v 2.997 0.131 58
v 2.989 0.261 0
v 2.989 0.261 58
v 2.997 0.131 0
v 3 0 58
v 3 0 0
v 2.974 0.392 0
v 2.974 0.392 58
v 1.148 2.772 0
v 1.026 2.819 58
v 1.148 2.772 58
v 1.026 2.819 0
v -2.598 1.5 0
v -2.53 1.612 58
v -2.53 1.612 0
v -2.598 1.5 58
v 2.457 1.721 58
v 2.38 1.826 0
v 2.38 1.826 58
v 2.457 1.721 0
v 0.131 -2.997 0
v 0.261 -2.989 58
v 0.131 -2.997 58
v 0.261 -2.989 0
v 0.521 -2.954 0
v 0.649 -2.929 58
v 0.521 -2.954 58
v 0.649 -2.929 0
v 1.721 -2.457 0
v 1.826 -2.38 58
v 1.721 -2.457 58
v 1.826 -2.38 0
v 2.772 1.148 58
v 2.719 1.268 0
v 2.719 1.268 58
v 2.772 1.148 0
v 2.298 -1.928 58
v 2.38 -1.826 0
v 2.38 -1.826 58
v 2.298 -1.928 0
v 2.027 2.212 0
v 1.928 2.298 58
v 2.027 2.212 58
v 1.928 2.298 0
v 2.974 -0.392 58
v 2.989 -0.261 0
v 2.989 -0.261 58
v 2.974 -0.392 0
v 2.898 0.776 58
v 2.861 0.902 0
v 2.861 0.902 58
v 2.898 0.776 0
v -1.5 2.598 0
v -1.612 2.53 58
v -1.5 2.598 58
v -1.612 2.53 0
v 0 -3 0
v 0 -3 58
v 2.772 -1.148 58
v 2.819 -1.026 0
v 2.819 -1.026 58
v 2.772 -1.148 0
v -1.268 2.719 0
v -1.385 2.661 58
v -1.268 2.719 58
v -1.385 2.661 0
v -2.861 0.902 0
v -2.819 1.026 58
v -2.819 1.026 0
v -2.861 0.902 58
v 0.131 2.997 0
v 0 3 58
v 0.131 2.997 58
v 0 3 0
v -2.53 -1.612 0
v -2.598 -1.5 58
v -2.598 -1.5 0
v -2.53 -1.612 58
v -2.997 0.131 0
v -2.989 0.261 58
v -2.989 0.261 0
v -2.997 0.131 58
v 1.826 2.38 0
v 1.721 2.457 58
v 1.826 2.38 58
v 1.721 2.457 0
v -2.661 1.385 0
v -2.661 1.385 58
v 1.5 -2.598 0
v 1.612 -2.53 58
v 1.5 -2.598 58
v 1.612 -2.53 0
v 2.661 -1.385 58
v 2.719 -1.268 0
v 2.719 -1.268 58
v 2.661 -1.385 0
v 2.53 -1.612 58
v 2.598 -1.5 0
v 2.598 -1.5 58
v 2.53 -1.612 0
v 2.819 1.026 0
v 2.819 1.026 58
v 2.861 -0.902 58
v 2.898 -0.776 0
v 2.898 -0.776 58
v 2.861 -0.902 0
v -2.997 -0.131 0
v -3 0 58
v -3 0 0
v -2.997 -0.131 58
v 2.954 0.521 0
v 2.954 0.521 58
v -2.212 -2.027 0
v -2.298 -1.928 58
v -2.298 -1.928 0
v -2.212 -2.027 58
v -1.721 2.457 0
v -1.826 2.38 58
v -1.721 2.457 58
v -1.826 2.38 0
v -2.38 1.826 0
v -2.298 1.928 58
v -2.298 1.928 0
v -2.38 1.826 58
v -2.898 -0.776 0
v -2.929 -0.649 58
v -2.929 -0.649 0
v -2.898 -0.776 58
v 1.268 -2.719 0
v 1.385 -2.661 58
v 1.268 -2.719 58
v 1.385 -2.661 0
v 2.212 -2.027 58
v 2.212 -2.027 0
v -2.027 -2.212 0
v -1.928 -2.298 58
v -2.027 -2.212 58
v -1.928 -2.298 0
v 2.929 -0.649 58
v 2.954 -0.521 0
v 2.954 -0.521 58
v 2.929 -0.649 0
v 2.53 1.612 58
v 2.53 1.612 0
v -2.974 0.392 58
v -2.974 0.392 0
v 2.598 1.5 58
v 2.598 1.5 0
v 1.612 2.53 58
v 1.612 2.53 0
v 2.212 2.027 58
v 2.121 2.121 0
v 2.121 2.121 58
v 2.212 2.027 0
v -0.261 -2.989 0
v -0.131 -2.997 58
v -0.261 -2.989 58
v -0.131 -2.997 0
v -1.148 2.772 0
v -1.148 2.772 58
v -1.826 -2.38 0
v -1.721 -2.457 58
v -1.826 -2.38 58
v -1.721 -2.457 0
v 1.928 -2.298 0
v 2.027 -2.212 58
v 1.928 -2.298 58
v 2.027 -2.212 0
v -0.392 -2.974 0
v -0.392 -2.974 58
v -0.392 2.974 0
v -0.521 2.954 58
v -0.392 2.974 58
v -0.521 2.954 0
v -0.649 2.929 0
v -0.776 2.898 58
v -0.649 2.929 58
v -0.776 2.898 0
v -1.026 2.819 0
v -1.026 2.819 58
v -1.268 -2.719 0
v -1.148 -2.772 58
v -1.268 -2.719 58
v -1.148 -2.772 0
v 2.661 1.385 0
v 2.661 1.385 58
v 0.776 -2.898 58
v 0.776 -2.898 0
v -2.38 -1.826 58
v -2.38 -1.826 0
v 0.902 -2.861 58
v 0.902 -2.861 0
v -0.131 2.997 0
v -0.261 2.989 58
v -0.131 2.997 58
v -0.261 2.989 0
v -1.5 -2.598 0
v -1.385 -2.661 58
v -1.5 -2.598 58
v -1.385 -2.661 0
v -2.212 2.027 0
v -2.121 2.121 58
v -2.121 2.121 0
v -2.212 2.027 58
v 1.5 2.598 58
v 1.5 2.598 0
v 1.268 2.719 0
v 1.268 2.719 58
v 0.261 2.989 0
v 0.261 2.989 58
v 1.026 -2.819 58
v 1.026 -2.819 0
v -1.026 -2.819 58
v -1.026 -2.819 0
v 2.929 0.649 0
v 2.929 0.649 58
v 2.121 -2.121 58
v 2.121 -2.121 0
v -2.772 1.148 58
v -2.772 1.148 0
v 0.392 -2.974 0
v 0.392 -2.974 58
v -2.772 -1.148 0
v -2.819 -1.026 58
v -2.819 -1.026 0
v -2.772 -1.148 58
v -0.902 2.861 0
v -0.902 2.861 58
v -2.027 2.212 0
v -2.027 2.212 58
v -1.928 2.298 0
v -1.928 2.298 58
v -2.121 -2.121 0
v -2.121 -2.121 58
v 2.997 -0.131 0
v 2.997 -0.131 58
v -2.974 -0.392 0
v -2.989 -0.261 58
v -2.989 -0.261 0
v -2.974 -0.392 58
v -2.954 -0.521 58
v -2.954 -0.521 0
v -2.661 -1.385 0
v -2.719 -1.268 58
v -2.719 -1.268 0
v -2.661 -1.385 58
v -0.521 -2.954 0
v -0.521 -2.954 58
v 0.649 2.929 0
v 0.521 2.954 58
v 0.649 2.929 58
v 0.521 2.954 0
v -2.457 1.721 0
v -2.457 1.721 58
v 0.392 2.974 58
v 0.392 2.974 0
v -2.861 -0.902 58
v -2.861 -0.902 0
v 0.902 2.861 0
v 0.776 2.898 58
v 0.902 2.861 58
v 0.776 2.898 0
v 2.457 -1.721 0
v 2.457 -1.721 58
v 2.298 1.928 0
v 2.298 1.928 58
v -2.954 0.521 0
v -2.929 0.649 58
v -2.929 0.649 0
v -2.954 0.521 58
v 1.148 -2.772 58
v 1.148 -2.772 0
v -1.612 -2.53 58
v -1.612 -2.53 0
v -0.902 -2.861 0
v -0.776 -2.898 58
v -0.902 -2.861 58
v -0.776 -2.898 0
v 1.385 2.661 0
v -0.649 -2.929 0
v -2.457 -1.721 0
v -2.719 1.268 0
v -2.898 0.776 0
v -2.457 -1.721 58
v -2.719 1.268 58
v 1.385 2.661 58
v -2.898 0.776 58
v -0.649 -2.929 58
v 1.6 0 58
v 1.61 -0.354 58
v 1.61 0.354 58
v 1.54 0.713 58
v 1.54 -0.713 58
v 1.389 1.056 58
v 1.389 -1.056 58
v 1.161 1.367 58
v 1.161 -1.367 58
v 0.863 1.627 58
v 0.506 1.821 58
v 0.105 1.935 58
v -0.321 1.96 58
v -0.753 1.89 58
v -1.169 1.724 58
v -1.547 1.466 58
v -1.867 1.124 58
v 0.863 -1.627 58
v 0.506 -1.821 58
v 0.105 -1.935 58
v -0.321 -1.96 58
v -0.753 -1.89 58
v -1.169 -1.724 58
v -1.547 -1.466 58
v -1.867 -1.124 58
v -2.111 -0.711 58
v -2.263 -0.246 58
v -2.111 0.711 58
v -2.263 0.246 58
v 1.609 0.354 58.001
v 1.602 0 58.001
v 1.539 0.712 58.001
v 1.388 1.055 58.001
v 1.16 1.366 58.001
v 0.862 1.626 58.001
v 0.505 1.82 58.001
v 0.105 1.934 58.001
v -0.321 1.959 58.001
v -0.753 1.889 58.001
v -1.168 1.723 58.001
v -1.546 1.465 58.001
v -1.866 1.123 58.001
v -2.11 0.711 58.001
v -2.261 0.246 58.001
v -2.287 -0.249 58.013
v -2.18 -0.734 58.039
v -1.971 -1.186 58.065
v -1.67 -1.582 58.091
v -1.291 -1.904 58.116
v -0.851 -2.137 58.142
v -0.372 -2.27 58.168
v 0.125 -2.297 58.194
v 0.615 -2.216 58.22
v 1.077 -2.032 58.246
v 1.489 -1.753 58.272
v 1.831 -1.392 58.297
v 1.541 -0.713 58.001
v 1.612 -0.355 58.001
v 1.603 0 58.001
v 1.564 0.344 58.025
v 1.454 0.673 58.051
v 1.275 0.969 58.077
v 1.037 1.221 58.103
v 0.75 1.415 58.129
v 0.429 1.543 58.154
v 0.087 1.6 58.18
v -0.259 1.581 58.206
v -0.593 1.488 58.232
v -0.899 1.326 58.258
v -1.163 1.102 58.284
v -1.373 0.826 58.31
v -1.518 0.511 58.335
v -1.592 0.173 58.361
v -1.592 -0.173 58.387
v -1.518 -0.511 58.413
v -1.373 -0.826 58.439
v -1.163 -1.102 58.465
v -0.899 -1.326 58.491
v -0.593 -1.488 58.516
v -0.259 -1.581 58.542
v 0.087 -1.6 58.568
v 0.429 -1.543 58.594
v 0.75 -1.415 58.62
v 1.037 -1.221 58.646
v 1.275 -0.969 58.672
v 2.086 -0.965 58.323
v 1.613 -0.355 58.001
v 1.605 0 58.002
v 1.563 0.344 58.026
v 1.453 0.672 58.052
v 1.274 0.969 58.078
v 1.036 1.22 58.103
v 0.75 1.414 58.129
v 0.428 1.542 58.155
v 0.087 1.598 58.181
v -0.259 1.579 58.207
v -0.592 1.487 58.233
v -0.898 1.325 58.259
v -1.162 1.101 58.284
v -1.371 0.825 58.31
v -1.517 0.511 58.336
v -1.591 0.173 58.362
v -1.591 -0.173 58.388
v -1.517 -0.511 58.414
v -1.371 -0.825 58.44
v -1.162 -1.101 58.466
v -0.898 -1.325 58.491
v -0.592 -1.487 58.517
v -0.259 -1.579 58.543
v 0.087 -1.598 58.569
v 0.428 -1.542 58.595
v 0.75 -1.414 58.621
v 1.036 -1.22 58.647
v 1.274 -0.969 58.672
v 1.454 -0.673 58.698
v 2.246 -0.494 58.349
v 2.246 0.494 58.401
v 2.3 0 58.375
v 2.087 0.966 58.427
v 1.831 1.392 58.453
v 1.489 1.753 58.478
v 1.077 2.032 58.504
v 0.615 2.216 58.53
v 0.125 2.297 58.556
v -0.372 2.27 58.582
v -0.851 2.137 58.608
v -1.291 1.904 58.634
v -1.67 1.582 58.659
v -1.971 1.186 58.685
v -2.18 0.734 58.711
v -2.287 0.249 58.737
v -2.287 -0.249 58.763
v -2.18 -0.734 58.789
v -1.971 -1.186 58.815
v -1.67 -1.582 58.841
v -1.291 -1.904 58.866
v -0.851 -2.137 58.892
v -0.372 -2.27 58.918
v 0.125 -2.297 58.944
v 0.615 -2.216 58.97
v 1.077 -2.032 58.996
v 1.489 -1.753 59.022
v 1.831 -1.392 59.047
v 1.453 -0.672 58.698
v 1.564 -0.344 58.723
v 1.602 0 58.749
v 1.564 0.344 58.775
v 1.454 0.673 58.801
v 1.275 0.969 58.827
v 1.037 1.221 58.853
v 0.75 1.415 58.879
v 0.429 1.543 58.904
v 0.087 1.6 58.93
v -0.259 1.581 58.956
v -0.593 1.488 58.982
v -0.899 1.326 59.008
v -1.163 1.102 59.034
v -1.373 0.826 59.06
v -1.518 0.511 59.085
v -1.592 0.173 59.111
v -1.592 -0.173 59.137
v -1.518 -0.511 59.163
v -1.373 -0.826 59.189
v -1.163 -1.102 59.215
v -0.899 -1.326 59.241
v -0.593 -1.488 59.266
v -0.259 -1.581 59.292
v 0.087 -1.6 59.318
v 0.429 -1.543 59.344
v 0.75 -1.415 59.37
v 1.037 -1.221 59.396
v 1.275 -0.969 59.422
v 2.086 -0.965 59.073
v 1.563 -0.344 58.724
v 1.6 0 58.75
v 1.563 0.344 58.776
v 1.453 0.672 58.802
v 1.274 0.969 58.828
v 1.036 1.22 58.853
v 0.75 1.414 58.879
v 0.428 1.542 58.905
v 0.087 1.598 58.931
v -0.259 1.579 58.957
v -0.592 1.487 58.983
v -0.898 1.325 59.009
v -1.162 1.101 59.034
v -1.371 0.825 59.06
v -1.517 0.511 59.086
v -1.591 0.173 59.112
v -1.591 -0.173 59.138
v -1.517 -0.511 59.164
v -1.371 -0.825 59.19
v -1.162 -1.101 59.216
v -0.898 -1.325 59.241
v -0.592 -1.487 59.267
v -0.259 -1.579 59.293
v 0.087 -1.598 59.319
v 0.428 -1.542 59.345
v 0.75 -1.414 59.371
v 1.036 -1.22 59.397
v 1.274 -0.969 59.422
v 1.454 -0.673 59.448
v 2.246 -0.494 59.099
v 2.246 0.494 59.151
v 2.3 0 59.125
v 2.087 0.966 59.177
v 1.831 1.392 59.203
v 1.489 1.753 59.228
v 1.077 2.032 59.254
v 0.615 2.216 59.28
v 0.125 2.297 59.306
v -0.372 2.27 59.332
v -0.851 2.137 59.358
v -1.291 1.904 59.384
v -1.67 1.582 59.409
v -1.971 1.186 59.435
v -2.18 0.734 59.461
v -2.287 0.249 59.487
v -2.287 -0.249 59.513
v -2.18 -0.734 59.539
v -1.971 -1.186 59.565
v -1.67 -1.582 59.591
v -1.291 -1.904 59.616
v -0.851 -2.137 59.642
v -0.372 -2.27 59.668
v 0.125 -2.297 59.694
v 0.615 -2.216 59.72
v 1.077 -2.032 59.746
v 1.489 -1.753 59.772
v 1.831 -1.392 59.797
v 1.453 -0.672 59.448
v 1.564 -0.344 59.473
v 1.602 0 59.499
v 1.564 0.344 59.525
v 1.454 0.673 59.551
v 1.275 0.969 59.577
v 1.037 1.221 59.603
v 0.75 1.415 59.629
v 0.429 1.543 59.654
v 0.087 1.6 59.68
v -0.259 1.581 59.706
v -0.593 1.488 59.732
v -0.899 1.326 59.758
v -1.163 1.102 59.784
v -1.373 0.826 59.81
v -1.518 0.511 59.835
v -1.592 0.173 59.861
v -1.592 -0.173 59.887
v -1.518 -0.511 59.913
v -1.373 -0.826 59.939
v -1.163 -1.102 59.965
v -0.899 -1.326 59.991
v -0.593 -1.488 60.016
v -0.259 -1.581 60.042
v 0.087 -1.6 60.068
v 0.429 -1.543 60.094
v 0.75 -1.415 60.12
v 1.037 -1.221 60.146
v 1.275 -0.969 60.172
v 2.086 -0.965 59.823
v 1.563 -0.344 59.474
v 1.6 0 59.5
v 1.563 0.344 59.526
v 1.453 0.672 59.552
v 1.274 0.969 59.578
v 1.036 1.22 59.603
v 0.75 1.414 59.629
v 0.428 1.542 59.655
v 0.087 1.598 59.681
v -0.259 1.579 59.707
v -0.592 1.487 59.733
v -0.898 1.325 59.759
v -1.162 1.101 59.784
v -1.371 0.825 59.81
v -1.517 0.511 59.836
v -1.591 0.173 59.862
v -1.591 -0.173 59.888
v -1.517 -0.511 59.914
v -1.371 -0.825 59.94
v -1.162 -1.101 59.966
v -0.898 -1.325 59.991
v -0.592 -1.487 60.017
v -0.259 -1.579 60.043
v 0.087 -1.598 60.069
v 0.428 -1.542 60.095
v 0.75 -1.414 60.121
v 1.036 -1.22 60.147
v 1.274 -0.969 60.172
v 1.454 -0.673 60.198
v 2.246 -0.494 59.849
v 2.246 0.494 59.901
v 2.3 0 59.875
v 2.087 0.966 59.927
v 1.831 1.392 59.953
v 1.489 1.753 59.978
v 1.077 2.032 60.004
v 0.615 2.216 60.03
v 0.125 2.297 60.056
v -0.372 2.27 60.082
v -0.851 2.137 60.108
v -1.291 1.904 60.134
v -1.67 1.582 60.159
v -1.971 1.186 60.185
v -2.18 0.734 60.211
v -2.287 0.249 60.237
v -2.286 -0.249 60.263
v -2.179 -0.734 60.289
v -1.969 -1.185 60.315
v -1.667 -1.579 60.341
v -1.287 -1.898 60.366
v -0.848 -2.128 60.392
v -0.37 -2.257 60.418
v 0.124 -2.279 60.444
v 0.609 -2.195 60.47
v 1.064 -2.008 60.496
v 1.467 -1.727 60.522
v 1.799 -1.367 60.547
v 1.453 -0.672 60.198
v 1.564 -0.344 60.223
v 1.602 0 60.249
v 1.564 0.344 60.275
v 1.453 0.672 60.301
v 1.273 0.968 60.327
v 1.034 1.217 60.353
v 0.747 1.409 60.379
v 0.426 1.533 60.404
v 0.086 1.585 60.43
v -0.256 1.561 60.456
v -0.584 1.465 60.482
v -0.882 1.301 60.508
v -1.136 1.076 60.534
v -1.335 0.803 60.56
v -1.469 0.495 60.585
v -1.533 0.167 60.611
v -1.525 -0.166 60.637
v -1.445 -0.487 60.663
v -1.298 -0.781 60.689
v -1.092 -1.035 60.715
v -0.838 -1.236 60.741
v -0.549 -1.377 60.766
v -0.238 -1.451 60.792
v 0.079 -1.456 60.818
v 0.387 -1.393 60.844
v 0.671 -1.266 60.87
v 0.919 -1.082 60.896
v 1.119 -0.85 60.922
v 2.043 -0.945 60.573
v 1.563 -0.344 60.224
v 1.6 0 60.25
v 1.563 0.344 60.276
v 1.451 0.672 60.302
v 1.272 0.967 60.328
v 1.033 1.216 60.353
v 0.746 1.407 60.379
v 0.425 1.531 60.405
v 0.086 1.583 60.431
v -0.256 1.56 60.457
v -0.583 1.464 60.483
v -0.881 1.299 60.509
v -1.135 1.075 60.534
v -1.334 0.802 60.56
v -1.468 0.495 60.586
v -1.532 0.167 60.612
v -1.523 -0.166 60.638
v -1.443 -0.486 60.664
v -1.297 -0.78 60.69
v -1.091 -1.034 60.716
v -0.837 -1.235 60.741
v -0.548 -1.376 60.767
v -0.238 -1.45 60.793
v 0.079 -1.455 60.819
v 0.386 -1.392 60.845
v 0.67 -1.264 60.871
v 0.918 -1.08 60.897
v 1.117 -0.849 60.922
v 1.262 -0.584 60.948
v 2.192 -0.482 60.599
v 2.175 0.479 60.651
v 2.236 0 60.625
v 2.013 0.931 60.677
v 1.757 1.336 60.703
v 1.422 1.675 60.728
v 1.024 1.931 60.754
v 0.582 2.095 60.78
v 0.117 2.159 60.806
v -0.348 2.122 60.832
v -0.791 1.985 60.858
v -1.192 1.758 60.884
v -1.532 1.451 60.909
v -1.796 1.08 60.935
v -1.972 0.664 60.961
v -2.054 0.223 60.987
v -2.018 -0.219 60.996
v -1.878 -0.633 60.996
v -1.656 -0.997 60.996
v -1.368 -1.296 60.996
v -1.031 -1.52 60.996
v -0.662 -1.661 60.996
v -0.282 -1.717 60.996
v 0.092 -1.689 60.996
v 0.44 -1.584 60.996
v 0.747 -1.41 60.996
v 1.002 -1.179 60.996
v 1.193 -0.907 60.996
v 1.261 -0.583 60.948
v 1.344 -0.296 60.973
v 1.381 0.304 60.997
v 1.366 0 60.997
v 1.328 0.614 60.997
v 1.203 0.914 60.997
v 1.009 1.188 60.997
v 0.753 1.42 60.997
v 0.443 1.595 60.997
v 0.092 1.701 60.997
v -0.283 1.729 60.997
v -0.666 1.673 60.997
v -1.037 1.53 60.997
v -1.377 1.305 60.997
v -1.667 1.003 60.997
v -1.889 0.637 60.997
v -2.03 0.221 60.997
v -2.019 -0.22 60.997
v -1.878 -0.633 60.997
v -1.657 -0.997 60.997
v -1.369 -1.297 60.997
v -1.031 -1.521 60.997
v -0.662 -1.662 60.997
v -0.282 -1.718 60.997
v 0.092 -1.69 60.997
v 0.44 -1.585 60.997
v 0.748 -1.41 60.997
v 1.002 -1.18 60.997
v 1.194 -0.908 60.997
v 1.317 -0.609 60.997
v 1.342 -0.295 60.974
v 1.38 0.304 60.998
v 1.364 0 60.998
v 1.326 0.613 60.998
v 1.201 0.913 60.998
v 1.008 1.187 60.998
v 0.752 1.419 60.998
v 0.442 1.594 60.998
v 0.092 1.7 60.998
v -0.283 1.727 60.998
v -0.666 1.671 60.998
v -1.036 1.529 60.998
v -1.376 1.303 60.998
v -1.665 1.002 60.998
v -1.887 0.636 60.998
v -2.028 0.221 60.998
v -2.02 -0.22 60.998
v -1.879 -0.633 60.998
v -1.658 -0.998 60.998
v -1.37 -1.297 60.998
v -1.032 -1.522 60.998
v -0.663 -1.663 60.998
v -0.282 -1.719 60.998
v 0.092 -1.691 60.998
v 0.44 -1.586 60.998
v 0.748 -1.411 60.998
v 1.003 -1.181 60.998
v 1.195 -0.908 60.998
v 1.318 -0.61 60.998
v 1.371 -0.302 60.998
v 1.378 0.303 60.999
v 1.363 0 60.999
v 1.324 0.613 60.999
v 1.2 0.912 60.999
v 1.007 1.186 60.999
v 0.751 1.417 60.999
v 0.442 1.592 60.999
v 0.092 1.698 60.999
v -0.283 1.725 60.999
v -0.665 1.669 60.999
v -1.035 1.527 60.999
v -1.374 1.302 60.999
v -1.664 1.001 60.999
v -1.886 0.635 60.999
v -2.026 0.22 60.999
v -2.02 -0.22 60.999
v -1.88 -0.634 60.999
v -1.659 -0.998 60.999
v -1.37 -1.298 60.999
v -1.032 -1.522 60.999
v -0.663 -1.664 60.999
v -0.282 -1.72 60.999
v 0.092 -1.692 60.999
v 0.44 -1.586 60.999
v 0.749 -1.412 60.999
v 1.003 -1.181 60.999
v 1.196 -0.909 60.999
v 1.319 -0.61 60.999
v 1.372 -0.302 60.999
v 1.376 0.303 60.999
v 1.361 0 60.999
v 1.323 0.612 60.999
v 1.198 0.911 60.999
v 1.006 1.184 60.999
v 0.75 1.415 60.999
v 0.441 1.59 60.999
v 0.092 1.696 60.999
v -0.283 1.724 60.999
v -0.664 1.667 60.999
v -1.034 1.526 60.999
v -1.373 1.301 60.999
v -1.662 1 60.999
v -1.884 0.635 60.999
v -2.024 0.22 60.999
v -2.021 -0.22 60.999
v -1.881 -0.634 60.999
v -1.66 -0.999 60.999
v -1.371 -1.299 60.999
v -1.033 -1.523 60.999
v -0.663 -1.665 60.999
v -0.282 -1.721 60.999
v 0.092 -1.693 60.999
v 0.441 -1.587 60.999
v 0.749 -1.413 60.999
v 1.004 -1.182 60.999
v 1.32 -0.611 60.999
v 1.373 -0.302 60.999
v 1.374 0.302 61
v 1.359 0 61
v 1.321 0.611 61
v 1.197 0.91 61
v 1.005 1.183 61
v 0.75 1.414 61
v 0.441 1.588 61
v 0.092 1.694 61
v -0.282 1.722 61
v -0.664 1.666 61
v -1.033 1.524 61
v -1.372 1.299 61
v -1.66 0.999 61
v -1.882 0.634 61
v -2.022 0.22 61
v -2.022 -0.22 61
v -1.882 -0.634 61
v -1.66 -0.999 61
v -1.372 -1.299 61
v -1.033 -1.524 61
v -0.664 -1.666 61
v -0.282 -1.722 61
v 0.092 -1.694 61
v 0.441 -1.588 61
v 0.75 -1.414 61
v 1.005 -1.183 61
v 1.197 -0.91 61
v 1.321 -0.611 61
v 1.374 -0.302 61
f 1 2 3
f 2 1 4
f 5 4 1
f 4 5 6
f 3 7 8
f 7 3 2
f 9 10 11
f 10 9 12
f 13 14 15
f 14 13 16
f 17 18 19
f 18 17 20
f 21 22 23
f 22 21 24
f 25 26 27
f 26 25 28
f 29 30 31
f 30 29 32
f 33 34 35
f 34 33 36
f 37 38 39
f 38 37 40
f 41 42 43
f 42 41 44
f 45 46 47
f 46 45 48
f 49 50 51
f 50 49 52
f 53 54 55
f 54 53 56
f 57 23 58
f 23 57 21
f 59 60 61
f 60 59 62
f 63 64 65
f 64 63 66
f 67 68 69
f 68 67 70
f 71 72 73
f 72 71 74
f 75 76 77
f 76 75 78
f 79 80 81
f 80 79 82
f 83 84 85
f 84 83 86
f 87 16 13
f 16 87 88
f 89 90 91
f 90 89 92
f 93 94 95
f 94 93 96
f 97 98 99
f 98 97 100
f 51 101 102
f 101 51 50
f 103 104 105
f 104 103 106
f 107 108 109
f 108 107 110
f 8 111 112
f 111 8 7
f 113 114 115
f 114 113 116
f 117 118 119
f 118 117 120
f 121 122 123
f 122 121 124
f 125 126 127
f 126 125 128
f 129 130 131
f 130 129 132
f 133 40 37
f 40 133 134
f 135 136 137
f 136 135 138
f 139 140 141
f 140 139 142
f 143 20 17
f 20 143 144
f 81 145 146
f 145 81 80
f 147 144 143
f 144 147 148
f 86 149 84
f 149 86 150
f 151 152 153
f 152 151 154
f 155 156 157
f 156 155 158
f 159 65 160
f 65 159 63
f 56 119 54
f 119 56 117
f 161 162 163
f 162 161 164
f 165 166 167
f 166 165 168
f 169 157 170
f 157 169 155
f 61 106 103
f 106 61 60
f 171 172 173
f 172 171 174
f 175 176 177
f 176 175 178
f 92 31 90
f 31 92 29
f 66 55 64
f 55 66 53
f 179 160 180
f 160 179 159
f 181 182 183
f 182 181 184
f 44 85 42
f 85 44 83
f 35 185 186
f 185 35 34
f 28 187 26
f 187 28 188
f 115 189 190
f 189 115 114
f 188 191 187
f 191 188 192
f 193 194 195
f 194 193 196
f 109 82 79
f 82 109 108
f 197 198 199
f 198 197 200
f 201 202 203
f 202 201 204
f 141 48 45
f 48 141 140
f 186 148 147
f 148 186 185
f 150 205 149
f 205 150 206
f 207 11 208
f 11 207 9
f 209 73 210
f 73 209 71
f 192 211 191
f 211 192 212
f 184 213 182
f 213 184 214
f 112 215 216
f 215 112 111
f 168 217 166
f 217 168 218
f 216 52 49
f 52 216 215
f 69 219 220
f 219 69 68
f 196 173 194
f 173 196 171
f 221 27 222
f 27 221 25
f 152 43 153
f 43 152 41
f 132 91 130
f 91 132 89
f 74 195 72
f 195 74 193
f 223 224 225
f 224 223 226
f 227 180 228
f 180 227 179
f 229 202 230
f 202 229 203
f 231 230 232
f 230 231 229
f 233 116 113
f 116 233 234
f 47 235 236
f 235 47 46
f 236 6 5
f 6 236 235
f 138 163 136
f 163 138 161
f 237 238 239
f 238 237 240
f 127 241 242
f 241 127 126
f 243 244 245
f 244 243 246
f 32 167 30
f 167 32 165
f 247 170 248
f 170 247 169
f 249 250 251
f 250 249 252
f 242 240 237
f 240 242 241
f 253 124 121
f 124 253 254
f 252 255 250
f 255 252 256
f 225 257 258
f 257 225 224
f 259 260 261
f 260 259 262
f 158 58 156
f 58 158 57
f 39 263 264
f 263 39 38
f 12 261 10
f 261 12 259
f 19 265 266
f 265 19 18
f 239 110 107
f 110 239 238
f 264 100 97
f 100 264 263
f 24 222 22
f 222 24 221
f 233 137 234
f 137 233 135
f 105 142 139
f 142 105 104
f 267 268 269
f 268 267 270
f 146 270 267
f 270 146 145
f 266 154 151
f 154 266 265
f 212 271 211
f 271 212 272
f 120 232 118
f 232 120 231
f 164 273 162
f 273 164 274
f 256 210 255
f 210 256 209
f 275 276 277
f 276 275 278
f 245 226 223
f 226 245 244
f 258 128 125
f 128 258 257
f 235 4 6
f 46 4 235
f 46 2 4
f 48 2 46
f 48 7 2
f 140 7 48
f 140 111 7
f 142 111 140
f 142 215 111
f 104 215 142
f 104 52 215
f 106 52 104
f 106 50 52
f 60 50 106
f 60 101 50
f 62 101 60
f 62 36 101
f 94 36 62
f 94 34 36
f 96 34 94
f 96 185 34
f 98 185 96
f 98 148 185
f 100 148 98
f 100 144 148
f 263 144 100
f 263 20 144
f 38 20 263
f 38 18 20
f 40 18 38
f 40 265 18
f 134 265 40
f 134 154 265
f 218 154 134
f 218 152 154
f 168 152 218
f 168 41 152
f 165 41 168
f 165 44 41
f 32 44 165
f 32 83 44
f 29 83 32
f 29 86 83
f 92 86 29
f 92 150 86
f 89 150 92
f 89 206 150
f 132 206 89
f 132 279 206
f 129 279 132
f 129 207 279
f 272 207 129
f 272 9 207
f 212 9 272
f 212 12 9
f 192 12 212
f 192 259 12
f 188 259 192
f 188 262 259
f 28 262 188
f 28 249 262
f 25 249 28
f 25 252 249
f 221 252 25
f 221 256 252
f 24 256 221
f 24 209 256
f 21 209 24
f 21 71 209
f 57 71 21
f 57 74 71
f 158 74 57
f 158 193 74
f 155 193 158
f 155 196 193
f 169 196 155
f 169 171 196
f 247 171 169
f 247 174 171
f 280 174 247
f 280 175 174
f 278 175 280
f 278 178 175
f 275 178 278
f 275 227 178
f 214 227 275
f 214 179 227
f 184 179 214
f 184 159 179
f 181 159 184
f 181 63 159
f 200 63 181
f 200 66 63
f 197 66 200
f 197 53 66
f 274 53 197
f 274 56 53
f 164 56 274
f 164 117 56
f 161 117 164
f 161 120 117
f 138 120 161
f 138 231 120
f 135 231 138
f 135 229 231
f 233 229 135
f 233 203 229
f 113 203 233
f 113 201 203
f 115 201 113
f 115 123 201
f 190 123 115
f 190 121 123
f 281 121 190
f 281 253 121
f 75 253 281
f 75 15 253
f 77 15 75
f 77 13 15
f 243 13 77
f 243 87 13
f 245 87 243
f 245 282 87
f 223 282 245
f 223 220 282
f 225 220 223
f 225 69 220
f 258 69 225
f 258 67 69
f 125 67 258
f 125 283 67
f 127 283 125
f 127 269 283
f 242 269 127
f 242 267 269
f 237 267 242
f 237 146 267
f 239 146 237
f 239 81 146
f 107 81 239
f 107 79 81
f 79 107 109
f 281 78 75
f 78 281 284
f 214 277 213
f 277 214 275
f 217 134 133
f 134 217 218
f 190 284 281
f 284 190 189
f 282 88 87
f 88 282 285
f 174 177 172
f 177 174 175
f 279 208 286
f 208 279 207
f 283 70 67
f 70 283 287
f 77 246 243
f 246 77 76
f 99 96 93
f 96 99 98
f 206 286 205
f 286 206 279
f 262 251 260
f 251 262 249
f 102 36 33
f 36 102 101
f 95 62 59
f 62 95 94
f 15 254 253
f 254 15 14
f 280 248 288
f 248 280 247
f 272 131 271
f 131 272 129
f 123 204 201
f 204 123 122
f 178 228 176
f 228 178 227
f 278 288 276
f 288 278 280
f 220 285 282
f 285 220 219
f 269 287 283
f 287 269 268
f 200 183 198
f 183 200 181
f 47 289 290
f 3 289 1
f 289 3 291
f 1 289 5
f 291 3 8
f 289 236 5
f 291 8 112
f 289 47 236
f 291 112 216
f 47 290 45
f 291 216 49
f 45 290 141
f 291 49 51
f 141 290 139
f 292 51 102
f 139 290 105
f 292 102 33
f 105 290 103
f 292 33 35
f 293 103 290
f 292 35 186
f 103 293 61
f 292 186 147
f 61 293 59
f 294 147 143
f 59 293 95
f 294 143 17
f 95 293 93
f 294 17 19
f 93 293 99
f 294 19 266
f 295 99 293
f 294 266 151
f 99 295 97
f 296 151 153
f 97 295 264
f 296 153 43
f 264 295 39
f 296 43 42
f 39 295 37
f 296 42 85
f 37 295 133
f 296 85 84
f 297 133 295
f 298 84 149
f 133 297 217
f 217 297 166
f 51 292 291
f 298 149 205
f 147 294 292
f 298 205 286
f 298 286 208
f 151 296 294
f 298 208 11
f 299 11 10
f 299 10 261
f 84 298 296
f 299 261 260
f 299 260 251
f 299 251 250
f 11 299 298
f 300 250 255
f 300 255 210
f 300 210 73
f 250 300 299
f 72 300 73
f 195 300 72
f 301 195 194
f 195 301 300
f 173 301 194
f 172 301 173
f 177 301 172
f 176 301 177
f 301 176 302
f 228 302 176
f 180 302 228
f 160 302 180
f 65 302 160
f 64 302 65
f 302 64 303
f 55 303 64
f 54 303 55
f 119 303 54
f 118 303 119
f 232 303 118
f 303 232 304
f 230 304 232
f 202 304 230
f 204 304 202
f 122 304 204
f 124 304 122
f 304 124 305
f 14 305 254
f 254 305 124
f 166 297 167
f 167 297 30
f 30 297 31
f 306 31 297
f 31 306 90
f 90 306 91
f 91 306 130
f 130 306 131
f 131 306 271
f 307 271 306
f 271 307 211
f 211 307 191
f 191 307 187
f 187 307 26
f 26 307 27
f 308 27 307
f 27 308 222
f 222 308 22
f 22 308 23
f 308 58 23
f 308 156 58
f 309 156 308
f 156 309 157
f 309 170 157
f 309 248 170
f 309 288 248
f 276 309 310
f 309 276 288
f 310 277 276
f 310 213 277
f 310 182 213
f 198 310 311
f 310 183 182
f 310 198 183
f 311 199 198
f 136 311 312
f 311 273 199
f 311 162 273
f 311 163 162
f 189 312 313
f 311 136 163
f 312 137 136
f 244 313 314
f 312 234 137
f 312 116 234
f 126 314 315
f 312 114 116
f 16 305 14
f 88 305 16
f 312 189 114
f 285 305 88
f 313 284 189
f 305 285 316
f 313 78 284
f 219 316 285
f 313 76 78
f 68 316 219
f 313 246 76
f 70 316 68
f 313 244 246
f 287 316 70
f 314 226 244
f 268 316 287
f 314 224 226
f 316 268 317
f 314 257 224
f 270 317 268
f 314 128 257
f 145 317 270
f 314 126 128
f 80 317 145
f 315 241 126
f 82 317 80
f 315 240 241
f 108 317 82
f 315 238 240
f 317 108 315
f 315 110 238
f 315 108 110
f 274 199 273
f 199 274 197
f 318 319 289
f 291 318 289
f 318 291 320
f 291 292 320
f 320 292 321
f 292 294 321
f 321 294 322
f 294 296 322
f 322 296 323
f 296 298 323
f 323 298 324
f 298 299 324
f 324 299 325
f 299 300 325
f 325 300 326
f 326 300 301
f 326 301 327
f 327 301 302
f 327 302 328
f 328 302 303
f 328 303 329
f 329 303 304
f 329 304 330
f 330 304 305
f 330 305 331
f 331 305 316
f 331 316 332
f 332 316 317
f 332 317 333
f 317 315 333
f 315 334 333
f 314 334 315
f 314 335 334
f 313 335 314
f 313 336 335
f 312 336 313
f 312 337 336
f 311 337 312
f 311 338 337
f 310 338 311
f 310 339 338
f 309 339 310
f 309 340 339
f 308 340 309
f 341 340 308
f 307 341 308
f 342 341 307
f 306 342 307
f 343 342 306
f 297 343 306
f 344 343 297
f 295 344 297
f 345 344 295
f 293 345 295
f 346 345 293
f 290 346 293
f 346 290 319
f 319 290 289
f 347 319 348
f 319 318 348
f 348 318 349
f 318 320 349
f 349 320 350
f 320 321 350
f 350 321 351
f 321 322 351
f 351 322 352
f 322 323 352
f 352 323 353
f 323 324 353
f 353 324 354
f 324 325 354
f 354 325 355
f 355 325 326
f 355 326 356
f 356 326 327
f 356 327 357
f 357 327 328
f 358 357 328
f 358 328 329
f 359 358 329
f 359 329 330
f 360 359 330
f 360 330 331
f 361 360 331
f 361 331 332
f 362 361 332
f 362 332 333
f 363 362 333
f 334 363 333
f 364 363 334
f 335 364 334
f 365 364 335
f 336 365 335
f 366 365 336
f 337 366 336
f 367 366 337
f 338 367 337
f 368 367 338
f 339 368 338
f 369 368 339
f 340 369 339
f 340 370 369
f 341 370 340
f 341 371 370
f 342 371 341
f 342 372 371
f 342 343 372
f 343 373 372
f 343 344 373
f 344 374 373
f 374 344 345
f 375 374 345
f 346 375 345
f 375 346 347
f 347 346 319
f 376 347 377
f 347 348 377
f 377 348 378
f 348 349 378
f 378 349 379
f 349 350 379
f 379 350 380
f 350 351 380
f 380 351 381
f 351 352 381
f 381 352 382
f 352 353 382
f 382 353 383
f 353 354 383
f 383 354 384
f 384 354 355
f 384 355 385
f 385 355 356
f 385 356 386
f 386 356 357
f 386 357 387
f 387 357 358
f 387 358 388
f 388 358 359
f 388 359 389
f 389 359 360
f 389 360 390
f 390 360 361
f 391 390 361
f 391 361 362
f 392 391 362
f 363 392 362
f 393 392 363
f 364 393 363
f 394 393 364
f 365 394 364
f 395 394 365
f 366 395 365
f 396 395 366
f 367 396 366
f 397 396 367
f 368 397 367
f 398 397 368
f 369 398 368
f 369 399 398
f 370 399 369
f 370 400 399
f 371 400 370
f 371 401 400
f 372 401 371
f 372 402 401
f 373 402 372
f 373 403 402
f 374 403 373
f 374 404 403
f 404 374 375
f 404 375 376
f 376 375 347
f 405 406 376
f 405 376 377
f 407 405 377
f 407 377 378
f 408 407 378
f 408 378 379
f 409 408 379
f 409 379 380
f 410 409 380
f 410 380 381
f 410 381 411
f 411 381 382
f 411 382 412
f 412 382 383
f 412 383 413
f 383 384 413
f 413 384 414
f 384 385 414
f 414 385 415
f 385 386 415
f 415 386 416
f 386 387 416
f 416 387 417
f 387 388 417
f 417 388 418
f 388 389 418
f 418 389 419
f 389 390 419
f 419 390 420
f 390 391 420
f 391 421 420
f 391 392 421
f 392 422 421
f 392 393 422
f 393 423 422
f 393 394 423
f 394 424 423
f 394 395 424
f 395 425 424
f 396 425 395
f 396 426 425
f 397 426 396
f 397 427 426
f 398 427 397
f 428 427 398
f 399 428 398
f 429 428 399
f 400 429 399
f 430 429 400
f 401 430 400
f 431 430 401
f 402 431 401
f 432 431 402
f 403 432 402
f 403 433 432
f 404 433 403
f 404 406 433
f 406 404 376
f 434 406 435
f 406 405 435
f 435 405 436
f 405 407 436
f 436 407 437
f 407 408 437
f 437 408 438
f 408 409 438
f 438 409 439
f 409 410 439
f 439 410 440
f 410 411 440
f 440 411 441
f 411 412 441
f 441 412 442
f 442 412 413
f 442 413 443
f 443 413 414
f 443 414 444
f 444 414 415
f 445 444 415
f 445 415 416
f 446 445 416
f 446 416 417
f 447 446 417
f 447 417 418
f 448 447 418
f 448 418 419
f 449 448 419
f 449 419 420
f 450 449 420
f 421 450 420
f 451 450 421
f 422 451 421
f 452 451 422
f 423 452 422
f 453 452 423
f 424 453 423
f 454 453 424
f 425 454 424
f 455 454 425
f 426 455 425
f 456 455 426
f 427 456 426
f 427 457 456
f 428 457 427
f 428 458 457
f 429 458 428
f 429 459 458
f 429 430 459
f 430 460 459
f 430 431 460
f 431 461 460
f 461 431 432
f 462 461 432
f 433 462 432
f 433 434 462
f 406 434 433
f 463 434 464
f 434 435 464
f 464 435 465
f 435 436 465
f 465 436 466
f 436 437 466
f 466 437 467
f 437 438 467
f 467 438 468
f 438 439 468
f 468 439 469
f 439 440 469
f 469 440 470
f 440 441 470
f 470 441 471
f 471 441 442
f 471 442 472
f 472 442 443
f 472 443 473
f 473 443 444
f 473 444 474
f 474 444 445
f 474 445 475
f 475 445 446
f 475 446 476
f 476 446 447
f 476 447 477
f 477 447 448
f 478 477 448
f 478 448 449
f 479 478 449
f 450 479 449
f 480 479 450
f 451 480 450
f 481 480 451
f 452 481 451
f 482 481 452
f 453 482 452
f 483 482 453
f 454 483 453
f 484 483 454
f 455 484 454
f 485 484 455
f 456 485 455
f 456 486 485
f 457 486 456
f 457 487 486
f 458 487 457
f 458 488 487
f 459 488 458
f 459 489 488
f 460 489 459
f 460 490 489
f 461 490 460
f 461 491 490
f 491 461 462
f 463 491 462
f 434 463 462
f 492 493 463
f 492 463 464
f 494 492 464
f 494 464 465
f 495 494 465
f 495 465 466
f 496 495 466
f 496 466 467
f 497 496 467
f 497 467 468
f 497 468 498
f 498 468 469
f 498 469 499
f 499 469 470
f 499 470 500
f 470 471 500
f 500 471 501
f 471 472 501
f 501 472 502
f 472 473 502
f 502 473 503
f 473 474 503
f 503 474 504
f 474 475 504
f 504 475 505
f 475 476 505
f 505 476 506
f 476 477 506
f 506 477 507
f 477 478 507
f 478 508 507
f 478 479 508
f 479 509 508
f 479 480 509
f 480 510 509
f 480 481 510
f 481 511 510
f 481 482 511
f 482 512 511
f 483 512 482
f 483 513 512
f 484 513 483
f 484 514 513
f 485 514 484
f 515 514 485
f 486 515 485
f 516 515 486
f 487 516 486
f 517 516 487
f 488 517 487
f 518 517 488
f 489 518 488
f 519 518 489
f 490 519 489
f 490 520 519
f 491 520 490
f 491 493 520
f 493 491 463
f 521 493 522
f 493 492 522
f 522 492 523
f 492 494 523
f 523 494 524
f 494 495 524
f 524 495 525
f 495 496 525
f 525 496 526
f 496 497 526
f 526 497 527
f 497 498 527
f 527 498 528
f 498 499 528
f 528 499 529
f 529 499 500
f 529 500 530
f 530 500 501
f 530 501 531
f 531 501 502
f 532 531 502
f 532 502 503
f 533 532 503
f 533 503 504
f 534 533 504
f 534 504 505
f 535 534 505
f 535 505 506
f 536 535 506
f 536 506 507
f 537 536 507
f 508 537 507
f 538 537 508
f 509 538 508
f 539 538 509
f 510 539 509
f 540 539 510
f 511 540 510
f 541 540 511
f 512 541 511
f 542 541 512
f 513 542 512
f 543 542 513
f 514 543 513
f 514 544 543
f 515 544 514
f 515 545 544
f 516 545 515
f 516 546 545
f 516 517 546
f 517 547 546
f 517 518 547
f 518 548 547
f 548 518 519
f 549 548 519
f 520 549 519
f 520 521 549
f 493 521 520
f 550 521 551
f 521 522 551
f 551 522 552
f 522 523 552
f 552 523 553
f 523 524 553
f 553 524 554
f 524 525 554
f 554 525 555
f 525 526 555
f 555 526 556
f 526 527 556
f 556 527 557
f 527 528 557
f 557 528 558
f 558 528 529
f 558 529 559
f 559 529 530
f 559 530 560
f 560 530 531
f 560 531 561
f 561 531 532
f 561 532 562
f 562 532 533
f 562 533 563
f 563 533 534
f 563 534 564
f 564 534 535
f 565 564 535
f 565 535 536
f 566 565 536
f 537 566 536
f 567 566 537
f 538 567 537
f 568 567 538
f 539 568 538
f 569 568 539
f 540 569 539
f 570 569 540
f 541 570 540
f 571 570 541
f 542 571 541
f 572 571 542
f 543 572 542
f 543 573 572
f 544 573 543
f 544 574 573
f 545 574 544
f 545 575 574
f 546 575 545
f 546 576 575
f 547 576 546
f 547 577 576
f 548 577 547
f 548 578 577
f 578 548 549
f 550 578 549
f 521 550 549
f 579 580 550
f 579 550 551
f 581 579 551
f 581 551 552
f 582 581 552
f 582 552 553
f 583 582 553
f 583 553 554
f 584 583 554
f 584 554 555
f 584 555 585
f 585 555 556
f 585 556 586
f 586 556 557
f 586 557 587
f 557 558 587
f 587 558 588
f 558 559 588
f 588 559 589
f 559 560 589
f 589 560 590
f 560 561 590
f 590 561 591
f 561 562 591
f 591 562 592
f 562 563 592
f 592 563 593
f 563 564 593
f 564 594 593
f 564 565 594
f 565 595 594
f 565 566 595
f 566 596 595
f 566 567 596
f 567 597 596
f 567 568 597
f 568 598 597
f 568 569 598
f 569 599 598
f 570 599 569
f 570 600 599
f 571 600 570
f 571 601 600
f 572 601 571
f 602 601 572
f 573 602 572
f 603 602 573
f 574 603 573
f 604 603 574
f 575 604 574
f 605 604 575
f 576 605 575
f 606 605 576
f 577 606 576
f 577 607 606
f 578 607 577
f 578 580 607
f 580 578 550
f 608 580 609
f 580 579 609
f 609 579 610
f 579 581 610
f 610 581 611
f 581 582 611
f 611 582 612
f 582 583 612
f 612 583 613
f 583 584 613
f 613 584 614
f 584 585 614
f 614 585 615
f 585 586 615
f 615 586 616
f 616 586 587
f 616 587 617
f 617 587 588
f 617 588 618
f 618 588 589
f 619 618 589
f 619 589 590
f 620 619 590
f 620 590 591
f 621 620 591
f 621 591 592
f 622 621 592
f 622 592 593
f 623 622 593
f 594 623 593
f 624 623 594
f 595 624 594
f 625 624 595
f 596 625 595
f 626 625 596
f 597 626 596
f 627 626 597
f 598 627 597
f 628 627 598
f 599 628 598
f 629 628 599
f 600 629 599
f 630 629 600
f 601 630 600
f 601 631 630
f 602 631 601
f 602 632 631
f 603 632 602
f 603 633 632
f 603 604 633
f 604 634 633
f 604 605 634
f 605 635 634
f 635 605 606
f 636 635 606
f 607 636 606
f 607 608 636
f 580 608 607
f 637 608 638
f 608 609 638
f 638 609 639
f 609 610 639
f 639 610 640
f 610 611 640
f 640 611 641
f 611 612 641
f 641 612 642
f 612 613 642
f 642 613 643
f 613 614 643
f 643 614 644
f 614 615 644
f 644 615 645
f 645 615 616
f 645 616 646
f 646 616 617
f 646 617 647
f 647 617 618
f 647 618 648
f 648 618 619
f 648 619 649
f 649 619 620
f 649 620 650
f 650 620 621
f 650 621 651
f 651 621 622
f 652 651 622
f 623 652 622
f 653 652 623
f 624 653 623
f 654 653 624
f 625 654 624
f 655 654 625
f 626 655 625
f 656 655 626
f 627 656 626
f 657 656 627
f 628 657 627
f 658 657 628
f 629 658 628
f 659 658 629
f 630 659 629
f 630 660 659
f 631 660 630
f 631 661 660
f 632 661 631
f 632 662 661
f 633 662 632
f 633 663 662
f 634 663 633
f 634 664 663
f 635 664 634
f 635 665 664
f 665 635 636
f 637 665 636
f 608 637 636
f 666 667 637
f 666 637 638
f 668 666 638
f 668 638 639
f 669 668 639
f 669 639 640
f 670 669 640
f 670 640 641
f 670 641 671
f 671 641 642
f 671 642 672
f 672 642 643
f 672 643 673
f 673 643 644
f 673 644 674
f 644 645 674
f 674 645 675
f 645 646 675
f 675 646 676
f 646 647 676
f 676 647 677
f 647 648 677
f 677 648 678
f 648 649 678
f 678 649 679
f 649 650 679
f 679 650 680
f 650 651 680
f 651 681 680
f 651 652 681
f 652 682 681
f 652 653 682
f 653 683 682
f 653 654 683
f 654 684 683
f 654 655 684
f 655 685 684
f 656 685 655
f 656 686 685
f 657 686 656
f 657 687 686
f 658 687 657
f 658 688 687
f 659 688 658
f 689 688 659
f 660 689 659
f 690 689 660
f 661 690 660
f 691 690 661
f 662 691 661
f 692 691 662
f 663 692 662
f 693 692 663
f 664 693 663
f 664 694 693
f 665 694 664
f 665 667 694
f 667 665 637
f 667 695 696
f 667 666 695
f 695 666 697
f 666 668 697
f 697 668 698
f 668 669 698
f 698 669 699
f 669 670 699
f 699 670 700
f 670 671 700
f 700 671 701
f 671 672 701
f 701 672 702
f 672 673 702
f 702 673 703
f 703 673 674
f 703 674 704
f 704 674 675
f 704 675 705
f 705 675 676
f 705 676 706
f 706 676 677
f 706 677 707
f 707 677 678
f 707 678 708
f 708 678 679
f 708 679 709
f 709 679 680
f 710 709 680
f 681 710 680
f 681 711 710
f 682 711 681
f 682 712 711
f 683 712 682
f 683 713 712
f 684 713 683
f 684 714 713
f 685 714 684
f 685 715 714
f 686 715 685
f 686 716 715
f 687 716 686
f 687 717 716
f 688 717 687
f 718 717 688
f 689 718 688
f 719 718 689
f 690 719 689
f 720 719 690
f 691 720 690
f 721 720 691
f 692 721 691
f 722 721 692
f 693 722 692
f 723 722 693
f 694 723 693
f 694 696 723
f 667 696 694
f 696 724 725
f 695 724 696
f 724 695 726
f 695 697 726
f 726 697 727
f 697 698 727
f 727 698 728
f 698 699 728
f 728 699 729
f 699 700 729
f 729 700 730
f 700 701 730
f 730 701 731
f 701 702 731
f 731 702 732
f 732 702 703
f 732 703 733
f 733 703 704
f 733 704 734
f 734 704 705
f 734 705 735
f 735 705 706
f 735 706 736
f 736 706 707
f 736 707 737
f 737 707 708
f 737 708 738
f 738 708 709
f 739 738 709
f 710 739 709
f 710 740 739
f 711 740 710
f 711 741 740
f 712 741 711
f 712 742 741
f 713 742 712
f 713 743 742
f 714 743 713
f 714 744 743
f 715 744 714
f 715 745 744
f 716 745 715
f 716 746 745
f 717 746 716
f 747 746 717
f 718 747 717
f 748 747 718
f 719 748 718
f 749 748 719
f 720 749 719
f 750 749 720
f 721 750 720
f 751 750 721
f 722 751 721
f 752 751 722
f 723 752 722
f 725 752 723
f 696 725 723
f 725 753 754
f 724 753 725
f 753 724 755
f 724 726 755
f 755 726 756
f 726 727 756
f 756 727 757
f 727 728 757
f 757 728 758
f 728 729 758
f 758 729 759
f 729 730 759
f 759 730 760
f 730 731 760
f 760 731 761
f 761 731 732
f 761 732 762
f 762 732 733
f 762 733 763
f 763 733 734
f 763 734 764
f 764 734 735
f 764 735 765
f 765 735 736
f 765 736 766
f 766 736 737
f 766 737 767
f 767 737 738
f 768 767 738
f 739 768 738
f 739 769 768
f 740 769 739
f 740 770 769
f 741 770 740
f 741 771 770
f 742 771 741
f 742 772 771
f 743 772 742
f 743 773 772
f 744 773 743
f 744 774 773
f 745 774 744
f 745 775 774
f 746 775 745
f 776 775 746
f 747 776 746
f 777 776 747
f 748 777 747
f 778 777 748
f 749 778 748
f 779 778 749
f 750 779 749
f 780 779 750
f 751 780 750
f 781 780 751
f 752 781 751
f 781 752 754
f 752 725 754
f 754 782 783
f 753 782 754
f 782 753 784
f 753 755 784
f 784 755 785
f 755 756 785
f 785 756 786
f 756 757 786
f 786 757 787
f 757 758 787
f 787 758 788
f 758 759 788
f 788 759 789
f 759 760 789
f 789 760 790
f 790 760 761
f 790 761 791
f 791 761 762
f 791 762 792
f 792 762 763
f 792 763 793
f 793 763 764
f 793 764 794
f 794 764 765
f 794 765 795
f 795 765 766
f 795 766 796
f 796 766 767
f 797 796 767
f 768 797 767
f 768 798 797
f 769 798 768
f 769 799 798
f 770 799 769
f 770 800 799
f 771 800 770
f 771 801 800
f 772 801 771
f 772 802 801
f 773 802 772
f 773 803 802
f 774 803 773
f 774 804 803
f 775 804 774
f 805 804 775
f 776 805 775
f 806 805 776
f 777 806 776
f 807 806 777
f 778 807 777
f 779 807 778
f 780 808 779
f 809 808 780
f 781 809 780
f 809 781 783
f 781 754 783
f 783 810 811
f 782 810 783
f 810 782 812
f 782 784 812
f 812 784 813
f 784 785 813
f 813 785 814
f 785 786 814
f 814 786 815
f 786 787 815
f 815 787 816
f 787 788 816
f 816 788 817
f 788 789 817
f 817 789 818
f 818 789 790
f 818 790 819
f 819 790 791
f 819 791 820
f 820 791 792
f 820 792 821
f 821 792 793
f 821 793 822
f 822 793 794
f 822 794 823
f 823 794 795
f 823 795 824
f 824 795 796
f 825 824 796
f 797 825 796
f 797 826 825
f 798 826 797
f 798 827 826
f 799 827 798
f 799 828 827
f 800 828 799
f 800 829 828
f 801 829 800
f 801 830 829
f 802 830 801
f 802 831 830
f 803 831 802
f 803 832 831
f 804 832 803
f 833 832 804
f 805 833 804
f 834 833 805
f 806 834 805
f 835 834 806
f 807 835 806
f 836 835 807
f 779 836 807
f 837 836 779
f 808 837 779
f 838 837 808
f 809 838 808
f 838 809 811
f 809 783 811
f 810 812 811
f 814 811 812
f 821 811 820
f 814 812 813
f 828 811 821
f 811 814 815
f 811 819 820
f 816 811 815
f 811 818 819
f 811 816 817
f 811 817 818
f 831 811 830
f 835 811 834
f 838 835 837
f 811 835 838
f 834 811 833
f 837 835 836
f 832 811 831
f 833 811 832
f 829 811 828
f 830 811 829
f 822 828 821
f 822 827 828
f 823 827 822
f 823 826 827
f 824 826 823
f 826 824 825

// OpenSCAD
// Created 2016-2017 by Ryan A. Colyer.
// This work is released with CC0 into the public domain.
// https://creativecommons.org/publicdomain/zero/1.0/
//
// https://www.thingiverse.com/thing:1686322
//
// v2.1

$fn = 100;

screw_resolution = 0.5;  // in mm

// Legs
leg_diameter = 6;
leg_height = 58;

// Provides standard metric thread pitches.
function ThreadPitch(diameter) =
  (diameter <= 64) ?
    lookup(diameter, [
      [2, 0.4],
      [2.5, 0.45],
      [3, 0.5],
      [4, 0.7],
      [5, 0.8],
      [6, 1.0],
      [7, 1.0],
      [8, 1.25],
      [10, 1.5],
      [12, 1.75],
      [14, 2.0],
      [16, 2.0],
      [18, 2.5],
      [20, 2.5],
      [22, 2.5],
      [24, 3.0],
      [27, 3.0],
      [30, 3.5],
      [33, 3.5],
      [36, 4.0],
      [39, 4.0],
      [42, 4.5],
      [48, 5.0],
      [52, 5.0],
      [56, 5.5],
      [60, 5.5],
      [64, 6.0]
    ]) :
    diameter * 6.0 / 64;


// This generates a closed polyhedron from an array of arrays of points,
// with each inner array tracing out one loop outlining the polyhedron.
// pointarrays should contain an array of N arrays each of size P outlining a
// closed manifold.  The points must obey the right-hand rule.  For example,
// looking down, the P points in the inner arrays are counter-clockwise in a
// loop, while the N point arrays increase in height.  Points in each inner
// array do not need to be equal height, but they usually should not meet or
// cross the line segments from the adjacent points in the other arrays.
// (N>=2, P>=3)
// Core triangles:
//   [j][i], [j+1][i], [j+1][(i+1)%P]
//   [j][i], [j+1][(i+1)%P], [j][(i+1)%P]
//   Then triangles are formed in a loop with the middle point of the first
//   and last array.
module ClosePoints(pointarrays) {
  function recurse_avg(arr, n=0, p=[0,0,0]) = (n>=len(arr)) ? p :
    recurse_avg(arr, n+1, p+(arr[n]-p)/(n+1));

  N = len(pointarrays);
  P = len(pointarrays[0]);
  NP = N*P;
  lastarr = pointarrays[N-1];
  midbot = recurse_avg(pointarrays[0]);
  midtop = recurse_avg(pointarrays[N-1]);

  faces_bot = [
    for (i=[0:P-1])
      [0,i+1,1+(i+1)%len(pointarrays[0])]
  ];

  loop_offset = 1;
  bot_len = loop_offset + P;

  faces_loop = [
    for (j=[0:N-2], i=[0:P-1], t=[0:1])
      [loop_offset, loop_offset, loop_offset] + (t==0 ?
      [j*P+i, (j+1)*P+i, (j+1)*P+(i+1)%P] :
      [j*P+i, (j+1)*P+(i+1)%P, j*P+(i+1)%P])
  ];

  top_offset = loop_offset + NP - P;
  midtop_offset = top_offset + P;

  faces_top = [
    for (i=[0:P-1])
      [midtop_offset,top_offset+(i+1)%P,top_offset+i]
  ];

  points = [
    for (i=[-1:NP])
      (i<0) ? midbot :
      ((i==NP) ? midtop :
      pointarrays[floor(i/P)][i%P])
  ];
  faces = concat(faces_bot, faces_loop, faces_top);

  polyhedron(points=points, faces=faces);
}

// This creates a vertical rod at the origin with external threads.  It uses
// metric standards by default.
module ScrewThread(outer_diam, height, pitch=0, tooth_angle=30, tolerance=0.4, tip_height=0, tooth_height=0, tip_min_fract=0) {

  pitch = (pitch==0) ? ThreadPitch(outer_diam) : pitch;
  tooth_height = (tooth_height==0) ? pitch : tooth_height;
  tip_min_fract = (tip_min_fract<0) ? 0 :
    ((tip_min_fract>0.9999) ? 0.9999 : tip_min_fract);

  outer_diam_cor = outer_diam + 0.25*tolerance; // Plastic shrinkage correction
  inner_diam = outer_diam - tooth_height/tan(tooth_angle);
  or = (outer_diam_cor < screw_resolution) ?
    screw_resolution/2 : outer_diam_cor / 2;
  ir = (inner_diam < screw_resolution) ? screw_resolution/2 : inner_diam / 2;
  height = (height < screw_resolution) ? screw_resolution : height;

  steps_per_loop_try = ceil(2*3.14159265359*or / screw_resolution);
  steps_per_loop = (steps_per_loop_try < 4) ? 4 : steps_per_loop_try;
  hs_ext = 3;
  hsteps = ceil(3 * height / pitch) + 2*hs_ext;

  extent = or - ir;

  tip_start = height-tip_height;
  tip_height_sc = tip_height / (1-tip_min_fract);

  tip_height_ir = (tip_height_sc > tooth_height/2) ?
    tip_height_sc - tooth_height/2 : tip_height_sc;

  tip_height_w = (tip_height_sc > tooth_height) ? tooth_height : tip_height_sc;
  tip_wstart = height + tip_height_sc - tip_height - tip_height_w;


  function tooth_width(a, h, pitch, tooth_height, extent) =
    let(
      ang_full = h*360.0/pitch-a,
      ang_pn = atan2(sin(ang_full), cos(ang_full)),
      ang = ang_pn < 0 ? ang_pn+360 : ang_pn,
      frac = ang/360,
      tfrac_half = tooth_height / (2*pitch),
      tfrac_cut = 2*tfrac_half
    )
    (frac > tfrac_cut) ? 0 : (
      (frac <= tfrac_half) ?
        ((frac / tfrac_half) * extent) :
        ((1 - (frac - tfrac_half)/tfrac_half) * extent)
    );


  pointarrays = [
    for (hs=[0:hsteps])
      [
        for (s=[0:steps_per_loop-1])
          let(
            ang_full = s*360.0/steps_per_loop,
            ang_pn = atan2(sin(ang_full), cos(ang_full)),
            ang = ang_pn < 0 ? ang_pn+360 : ang_pn,

            h_fudge = pitch*0.001,

            h_mod =
              (hs%3 == 2) ?
                ((s == steps_per_loop-1) ? tooth_height - h_fudge : (
                 (s == steps_per_loop-2) ? tooth_height/2 : 0)) : (
              (hs%3 == 0) ?
                ((s == steps_per_loop-1) ? pitch-tooth_height/2 : (
                 (s == steps_per_loop-2) ? pitch-tooth_height + h_fudge : 0)) :
                ((s == steps_per_loop-1) ? pitch-tooth_height/2 + h_fudge : (
                 (s == steps_per_loop-2) ? tooth_height/2 : 0))
              ),

            h_level =
              (hs%3 == 2) ? tooth_height - h_fudge : (
              (hs%3 == 0) ? 0 : tooth_height/2),

            h_ub = floor((hs-hs_ext)/3) * pitch
              + h_level + ang*pitch/360.0 - h_mod,
            h_max = height - (hsteps-hs) * h_fudge,
            h_min = hs * h_fudge,
            h = (h_ub < h_min) ? h_min : ((h_ub > h_max) ? h_max : h_ub),

            ht = h - tip_start,
            hf_ir = ht/tip_height_ir,
            ht_w = h - tip_wstart,
            hf_w_t = ht_w/tip_height_w,
            hf_w = (hf_w_t < 0) ? 0 : ((hf_w_t > 1) ? 1 : hf_w_t),

            ext_tip = (h <= tip_wstart) ? extent : (1-hf_w) * extent,
            wnormal = tooth_width(ang, h, pitch, tooth_height, ext_tip),
            w = (h <= tip_wstart) ? wnormal :
              (1-hf_w) * wnormal +
              hf_w * (0.1*screw_resolution + (wnormal * wnormal * wnormal /
                (ext_tip*ext_tip+0.1*screw_resolution))),
            r = (ht <= 0) ? ir + w :
              ( (ht < tip_height_ir ? ((2/(1+(hf_ir*hf_ir))-1) * ir) : 0) + w)
          )
          [r*cos(ang), r*sin(ang), h]
      ]
  ];


  ClosePoints(pointarrays);
}

// Solid rod on the bottom, external threads on the top.
module RodStart(height, diameter, thread_len=0, thread_diam=0, thread_pitch=0) {
  // A reasonable default.
  thread_diam = (thread_diam==0) ? 0.75*diameter : thread_diam;
  thread_len = (thread_len==0) ? 0.5*diameter : thread_len;
  thread_pitch = (thread_pitch==0) ? ThreadPitch(thread_diam) : thread_pitch;

  cylinder(r=diameter/2, h=height, $fn=24*diameter);

  translate([0, 0, height])
    ScrewThread(thread_diam, thread_len, thread_pitch,
      tip_height=thread_pitch, tip_min_fract=0.75);
}

// Legs
module leg() {
  RodStart(leg_height, leg_diameter);
}

// Render
leg();
